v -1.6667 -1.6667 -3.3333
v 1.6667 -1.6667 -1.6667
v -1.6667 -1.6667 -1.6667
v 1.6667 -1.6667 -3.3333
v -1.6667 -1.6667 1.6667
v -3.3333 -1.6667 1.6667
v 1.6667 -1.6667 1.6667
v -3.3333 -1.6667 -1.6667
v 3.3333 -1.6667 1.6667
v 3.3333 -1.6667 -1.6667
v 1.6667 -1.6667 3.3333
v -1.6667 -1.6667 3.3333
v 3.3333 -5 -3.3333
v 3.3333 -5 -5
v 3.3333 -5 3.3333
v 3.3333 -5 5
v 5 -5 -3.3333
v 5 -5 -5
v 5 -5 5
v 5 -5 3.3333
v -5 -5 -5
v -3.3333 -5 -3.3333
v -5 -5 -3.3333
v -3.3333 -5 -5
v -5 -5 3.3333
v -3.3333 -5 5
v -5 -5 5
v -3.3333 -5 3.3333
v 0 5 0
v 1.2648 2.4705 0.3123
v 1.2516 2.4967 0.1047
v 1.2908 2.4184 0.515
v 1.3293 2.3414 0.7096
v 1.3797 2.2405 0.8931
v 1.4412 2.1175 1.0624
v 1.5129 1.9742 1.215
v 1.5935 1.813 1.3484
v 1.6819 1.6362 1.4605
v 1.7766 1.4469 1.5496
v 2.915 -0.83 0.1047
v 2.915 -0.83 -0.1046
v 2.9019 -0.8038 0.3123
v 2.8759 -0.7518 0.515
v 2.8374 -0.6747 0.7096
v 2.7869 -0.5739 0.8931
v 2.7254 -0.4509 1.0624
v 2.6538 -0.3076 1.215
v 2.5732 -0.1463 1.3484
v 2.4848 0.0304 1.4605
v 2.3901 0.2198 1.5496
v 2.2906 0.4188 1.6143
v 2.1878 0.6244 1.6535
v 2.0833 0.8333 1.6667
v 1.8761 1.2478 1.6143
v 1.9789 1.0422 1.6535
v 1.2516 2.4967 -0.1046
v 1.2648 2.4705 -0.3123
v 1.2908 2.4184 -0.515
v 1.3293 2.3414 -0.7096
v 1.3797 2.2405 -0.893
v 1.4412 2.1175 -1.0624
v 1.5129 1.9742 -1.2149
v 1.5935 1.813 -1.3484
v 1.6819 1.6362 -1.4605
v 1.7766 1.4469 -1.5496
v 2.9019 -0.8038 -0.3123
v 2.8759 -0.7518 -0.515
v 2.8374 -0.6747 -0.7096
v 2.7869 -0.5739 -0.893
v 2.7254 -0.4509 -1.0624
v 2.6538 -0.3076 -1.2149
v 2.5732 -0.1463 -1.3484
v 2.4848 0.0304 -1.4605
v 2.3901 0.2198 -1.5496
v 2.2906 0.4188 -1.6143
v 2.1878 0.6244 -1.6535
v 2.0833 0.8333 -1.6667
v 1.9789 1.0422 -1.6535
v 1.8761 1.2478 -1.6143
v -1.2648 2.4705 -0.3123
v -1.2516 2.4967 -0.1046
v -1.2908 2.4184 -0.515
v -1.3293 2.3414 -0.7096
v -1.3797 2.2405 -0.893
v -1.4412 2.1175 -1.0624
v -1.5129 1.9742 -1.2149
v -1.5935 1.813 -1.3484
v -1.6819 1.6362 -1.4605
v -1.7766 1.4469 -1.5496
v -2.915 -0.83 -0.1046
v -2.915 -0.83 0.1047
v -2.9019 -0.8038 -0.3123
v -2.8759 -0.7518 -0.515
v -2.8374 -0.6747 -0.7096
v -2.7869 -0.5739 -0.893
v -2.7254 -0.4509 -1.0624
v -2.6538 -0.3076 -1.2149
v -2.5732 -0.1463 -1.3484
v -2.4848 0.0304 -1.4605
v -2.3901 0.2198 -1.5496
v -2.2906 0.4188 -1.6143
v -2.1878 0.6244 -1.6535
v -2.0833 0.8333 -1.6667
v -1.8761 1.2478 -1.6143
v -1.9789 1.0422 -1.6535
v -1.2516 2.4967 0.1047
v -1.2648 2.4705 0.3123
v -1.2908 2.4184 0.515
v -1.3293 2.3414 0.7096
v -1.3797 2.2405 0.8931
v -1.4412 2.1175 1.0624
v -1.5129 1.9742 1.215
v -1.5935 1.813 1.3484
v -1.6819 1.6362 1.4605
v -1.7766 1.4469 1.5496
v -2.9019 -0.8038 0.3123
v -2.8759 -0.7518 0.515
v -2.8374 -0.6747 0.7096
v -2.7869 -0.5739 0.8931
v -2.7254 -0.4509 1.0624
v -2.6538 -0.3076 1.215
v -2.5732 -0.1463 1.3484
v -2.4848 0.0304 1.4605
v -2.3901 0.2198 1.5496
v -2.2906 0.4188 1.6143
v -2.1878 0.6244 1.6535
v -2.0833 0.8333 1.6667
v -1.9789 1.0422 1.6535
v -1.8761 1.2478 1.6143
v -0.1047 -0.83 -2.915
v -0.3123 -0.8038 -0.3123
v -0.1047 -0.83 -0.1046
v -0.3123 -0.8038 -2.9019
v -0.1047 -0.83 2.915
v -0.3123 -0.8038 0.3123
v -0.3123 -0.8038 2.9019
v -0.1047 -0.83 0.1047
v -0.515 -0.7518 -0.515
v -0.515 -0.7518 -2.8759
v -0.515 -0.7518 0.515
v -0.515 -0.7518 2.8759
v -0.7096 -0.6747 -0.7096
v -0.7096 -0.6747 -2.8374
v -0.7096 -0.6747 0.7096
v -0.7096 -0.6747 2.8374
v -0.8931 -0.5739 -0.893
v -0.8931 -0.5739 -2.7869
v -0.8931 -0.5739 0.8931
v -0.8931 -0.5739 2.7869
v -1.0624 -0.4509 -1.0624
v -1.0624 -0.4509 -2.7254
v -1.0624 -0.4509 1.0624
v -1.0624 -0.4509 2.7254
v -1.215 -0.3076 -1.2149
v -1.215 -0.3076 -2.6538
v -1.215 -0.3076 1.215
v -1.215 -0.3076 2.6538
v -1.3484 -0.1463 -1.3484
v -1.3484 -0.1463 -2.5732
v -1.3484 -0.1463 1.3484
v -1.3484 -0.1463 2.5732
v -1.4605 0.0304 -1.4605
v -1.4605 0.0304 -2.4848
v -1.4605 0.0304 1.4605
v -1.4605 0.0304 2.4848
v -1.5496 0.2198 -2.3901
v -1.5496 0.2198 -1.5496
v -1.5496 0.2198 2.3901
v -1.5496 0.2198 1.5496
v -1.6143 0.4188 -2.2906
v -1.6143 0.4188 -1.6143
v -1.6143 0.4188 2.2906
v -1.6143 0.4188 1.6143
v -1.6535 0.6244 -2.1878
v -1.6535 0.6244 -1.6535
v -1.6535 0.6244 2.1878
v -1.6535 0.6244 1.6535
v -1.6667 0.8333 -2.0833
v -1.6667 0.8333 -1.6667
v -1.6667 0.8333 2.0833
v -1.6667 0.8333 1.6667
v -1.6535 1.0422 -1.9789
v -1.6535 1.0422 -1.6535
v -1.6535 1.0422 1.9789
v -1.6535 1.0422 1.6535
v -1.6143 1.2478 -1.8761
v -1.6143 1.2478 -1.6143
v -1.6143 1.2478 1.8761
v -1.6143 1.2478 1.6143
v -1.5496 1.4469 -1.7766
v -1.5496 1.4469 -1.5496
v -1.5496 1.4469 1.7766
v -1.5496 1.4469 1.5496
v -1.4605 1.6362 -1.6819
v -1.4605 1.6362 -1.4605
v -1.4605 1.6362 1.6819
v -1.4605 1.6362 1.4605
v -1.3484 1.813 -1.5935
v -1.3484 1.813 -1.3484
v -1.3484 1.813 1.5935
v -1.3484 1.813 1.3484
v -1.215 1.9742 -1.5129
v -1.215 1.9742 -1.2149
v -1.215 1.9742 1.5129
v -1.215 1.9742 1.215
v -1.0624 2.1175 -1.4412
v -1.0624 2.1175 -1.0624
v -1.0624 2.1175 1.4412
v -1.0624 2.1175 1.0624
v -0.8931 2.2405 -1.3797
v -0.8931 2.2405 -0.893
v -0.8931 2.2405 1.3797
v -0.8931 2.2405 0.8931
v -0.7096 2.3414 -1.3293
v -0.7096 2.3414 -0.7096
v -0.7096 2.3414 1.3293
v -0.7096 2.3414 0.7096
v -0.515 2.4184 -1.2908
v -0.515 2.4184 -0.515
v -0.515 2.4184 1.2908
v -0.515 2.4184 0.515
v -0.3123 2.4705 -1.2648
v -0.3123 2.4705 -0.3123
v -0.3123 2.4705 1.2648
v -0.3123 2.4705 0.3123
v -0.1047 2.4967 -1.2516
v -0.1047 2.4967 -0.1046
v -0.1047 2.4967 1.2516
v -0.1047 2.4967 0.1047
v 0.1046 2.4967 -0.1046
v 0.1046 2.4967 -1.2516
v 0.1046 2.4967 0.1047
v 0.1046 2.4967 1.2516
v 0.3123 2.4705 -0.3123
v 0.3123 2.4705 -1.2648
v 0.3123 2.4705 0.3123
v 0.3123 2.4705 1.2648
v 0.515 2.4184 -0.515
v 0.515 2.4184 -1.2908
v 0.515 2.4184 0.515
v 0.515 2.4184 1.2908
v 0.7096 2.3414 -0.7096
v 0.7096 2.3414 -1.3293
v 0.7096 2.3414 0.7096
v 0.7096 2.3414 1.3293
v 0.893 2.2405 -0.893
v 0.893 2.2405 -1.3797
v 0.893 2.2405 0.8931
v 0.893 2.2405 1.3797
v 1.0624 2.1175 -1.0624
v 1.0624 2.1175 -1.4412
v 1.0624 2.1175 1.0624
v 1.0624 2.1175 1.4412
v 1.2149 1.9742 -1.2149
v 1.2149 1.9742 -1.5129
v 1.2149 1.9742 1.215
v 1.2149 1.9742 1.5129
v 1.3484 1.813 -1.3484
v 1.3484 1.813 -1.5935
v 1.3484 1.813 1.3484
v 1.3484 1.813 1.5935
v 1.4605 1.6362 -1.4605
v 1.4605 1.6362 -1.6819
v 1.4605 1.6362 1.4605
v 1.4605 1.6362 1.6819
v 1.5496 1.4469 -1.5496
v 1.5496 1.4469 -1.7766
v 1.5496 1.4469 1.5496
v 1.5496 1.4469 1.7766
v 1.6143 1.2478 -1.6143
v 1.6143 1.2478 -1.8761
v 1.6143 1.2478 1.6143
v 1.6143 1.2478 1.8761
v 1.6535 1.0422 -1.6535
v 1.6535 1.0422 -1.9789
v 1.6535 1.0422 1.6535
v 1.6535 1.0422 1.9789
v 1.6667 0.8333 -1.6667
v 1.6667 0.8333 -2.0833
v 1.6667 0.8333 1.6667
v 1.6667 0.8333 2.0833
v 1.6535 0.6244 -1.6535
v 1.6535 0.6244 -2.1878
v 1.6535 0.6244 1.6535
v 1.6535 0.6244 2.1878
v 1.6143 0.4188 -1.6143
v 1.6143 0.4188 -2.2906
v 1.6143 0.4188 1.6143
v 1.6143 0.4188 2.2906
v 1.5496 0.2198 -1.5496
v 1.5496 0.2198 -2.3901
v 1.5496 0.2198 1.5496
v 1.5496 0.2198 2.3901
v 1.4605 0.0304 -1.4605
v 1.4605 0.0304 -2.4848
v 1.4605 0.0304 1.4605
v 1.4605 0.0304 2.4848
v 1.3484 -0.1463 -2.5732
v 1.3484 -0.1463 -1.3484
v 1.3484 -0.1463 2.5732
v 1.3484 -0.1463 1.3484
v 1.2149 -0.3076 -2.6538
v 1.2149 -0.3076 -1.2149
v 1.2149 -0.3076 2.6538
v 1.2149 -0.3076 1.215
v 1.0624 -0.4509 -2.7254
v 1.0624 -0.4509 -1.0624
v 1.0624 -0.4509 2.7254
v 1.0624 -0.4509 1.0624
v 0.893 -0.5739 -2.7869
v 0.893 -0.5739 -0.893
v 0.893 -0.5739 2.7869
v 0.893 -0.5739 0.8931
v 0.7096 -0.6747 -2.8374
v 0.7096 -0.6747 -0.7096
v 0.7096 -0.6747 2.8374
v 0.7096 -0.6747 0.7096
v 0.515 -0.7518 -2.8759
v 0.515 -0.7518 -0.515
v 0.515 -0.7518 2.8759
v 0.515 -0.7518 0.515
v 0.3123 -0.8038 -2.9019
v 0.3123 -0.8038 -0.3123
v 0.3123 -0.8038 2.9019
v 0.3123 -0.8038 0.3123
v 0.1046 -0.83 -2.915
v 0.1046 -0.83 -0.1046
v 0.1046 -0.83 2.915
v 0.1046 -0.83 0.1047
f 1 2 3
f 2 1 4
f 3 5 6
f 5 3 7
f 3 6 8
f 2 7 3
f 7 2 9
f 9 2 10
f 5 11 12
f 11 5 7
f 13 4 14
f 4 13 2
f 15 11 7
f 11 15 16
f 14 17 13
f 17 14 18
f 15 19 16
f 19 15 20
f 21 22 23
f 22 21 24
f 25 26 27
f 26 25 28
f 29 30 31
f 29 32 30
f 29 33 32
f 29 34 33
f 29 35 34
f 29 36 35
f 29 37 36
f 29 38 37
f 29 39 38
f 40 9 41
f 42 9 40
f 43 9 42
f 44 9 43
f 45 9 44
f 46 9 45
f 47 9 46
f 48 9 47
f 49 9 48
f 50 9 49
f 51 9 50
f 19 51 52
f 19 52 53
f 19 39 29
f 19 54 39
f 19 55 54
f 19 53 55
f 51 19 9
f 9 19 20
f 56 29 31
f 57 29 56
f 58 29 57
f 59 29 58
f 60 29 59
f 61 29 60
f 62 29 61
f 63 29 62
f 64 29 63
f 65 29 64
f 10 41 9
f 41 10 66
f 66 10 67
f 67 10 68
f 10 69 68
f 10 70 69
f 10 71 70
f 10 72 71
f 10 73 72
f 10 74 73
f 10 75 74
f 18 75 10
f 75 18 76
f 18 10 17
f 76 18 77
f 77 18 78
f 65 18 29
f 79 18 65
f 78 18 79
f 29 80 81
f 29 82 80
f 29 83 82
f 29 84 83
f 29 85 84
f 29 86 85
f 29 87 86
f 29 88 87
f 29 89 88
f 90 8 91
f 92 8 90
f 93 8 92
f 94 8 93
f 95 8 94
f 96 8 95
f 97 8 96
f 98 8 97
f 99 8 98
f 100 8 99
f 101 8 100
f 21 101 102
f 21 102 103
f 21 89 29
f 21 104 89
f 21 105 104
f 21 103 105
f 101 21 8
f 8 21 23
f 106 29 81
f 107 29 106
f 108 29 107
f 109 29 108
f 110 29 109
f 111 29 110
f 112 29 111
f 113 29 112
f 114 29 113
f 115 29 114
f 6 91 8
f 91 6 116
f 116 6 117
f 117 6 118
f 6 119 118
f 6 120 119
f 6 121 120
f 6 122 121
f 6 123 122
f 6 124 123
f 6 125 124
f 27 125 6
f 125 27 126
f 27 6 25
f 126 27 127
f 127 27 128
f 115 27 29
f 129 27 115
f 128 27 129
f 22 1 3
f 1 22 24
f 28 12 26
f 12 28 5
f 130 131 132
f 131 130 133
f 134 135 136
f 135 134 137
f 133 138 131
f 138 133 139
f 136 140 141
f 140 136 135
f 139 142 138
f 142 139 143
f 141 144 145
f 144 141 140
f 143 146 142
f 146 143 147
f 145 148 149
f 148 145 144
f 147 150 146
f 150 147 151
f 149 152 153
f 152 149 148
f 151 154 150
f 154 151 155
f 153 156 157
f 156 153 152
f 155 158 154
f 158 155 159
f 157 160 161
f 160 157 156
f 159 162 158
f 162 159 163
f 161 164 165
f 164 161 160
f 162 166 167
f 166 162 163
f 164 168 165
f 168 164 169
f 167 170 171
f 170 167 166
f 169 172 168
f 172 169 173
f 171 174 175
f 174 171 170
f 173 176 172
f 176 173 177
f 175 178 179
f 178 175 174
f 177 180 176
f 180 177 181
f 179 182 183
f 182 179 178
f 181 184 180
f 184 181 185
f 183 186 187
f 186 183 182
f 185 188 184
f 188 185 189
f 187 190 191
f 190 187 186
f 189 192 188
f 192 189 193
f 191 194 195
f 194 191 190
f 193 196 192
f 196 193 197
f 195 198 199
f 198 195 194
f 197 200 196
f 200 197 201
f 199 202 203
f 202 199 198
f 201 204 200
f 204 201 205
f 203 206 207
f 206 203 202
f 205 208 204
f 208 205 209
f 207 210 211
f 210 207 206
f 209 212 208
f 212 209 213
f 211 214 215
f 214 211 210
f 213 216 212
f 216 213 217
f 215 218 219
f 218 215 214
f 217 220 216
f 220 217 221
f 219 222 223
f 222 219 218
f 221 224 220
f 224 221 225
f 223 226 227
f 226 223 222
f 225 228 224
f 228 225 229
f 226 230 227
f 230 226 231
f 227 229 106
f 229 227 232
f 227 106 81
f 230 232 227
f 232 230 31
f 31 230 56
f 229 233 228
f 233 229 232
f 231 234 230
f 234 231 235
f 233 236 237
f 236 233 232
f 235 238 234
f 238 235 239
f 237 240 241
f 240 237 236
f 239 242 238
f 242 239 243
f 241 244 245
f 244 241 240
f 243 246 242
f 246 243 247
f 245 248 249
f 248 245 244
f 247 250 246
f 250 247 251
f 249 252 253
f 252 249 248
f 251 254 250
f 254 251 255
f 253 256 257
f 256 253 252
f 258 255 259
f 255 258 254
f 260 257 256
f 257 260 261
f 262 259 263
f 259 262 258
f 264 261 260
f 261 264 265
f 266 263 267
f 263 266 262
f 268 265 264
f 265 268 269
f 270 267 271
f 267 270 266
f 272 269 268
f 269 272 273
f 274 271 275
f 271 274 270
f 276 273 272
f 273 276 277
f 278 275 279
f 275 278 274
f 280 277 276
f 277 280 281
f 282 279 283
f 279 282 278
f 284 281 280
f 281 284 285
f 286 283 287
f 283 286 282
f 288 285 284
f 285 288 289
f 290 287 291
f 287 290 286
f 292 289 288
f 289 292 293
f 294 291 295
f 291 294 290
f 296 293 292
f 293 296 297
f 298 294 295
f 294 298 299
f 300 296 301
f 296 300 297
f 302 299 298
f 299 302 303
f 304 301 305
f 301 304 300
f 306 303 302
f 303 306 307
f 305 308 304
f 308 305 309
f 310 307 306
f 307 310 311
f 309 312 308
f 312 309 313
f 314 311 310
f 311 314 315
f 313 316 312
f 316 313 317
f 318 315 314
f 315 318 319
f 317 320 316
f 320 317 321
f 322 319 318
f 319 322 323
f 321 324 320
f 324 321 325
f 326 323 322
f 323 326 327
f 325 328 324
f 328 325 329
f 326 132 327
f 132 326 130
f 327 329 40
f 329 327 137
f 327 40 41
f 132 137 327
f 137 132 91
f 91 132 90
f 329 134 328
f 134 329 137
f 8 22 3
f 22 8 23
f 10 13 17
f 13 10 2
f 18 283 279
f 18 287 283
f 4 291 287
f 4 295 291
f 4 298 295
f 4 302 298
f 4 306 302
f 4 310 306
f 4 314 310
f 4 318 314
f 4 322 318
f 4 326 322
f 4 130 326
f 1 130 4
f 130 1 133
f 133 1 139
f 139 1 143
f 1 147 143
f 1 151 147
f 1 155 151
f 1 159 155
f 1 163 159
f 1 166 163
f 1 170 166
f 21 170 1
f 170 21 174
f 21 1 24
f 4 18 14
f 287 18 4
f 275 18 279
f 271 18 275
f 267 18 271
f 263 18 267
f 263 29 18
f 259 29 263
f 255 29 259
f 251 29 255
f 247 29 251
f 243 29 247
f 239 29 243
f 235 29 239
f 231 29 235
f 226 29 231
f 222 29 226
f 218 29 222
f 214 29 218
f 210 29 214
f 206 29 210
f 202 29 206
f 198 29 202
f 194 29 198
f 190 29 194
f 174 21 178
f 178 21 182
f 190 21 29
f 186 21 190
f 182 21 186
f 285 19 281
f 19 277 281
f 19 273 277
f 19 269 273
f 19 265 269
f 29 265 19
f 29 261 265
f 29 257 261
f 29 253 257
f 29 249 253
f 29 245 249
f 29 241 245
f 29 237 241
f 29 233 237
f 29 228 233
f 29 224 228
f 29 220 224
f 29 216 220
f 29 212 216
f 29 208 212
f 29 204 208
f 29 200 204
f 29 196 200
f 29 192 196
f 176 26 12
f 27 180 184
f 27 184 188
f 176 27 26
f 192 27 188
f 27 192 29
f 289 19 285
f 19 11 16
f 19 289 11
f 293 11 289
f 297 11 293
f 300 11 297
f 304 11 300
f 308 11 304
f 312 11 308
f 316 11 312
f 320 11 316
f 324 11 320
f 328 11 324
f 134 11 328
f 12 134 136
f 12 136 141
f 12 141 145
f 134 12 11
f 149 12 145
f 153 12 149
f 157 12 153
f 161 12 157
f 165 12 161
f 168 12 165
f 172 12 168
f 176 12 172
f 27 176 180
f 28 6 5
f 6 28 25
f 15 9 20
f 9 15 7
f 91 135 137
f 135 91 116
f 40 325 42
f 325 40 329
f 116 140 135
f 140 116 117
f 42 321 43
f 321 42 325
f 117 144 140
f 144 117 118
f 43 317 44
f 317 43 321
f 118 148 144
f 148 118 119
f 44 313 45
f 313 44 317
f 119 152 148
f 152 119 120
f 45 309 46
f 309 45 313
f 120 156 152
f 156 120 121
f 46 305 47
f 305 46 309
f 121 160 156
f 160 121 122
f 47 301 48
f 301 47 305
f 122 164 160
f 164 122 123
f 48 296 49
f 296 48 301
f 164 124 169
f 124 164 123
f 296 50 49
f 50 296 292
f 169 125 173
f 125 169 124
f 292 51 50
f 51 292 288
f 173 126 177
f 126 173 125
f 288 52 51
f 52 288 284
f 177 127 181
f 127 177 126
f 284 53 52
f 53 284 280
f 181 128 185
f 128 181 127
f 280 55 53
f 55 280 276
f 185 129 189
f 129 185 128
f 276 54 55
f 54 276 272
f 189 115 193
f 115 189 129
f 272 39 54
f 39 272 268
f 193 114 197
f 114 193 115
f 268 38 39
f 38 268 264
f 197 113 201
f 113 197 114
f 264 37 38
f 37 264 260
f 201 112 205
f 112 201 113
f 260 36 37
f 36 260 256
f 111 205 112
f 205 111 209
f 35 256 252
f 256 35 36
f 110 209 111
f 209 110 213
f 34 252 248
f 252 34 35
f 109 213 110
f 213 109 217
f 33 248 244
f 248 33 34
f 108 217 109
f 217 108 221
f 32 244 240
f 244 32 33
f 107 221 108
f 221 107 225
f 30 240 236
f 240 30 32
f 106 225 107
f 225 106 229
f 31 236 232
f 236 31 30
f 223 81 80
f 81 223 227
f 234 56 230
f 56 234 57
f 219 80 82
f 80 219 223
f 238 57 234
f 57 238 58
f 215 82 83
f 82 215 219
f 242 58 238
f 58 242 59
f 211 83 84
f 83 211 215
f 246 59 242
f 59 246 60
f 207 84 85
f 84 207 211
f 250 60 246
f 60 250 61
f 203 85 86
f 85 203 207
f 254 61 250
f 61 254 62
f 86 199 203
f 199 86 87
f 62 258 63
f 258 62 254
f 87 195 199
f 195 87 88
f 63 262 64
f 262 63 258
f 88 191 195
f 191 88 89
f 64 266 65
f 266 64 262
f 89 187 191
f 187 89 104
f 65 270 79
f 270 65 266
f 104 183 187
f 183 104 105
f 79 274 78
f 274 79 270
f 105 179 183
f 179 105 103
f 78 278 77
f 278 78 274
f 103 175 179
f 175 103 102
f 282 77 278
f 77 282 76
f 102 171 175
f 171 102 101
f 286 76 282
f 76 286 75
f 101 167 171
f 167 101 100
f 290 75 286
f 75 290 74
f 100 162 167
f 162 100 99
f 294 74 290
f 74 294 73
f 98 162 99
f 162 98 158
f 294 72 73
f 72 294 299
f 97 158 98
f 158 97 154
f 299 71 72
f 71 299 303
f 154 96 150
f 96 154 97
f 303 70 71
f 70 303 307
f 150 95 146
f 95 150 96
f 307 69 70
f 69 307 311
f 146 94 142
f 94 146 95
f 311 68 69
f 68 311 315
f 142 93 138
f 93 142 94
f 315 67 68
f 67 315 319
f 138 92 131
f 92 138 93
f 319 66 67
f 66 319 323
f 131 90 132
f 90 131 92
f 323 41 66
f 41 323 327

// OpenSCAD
// Generated by SolidPython 1.1.3 on 2025-02-25 01:33:31
$fn=50;


intersection() {
	translate(v = [-5.0000000000, -5.0000000000, -5.0000000000]) {
		linear_extrude(height = 10) {
			difference() {
				polygon(points = [[0, 0], [5.0000000000, 10], [10, 0], [8.3333333333, 0], [6.6666666667, 3.3333333333], [3.3333333333, 3.3333333333], [1.6666666667, 0]]);
				translate(v = [5.0000000000, 5.8333333333]) {
					circle(r = 1.6666666667);
				}
			}
		}
	}
	rotate(a = 90, v = [0, 1, 0]) {
		translate(v = [-5.0000000000, -5.0000000000, -5.0000000000]) {
			linear_extrude(height = 10) {
				difference() {
					polygon(points = [[0, 0], [5.0000000000, 10], [10, 0], [8.3333333333, 0], [6.6666666667, 3.3333333333], [3.3333333333, 3.3333333333], [1.6666666667, 0]]);
					translate(v = [5.0000000000, 5.8333333333]) {
						circle(r = 1.6666666667);
					}
				}
			}
		}
	}
}
/***********************************************
*********      SolidPython code:      **********
************************************************
 
from solid import *
from solid.utils import *

import math
import matplotlib.pyplot as plt
import subprocess
import os
import grok_letters as grok
import grok_think as grok_think
import letters as let
import o1_letters as o1

def arc_points(radius, start_angle, end_angle, center=[0,0], num_points=50):
    angles = [start_angle + i * (end_angle - start_angle) / (num_points - 1)
              for i in range(num_points)]
    points = [
        (center[0] + radius * math.cos(math.radians(angle)),
         center[1] + radius * math.sin(math.radians(angle)))
        for angle in angles
    ]
    return points

class Hole:
    def __init__(self, radius, x, y):
        """
        Hole defined by:
        :param x: x dimension for center point of the circle as a ratio of letter height
        :param y: y dimension for center point of the circle as a ratio of letter height
        :param radius: radius of circle as a ratio of letter height
        """
        self.x = x
        self.y = y
        self.radius = radius

class Letter2D:
    def __init__(self, letter, scale):
        self.letter = letter
        self.scale = scale
        self.shape = self.generate()
    
    def get_letter_points(self):
        points = getattr(let, self.letter)
        # points = getattr(o1, self.letter)
        # points = getattr(grok, self.letter)
        scaled_points = [(point[0] * self.scale, point[1] * self.scale) for point in points]
        return scaled_points

    def get_letter_holes(self):
        holes = []
        if self.letter == "A": 
            holes = [Hole(1/6, 1/2, 7/12)]
        if self.letter == "B":
            holes = [Hole(1/6, 1/2, 3/4), Hole(1/6, 1/2, 1/4)]
        if self.letter == "D":
            holes = [Hole(1/3, 1/2, 1/2)]

        scaled_holes = [Hole(hole.radius*self.scale, hole.x*self.scale, hole.y*self.scale) for hole in holes]
        return scaled_holes

    
    def generate(self):
        shape = polygon(points=self.get_letter_points())
        holes = self.get_letter_holes()

        if holes:
            for hole in holes:
                circle_hole = circle(r=hole.radius)
                positioned_hole = translate([hole.x, hole.y])(circle_hole)
                shape = difference()(shape, positioned_hole)
        return shape
    

    def render(self):
        scad_render_to_file(self.shape, f"output/{self.name}.scad", file_header='$fn=50;')
        subprocess.run(["C:\\Program Files\\OpenSCAD\\openscad.exe", "-o", f"output\\{self.name}.stl", f"output\\{self.name}.scad"])


class TwoLetter3D:
    def __init__(self, height, letterA, letterB=None):
        self.height = height
        self.letterA = letterA
        self.letterB = letterB
    

    def generate_3d_letter(self, letter):
        letter = letter.upper()
        # TODO: add catch here for is letter is not a letter
        shape = Letter2D(letter, self.height).generate()
        shape_3d = linear_extrude(height=self.height)(shape)
        centered_shape_3d = translate([-self.height/2, -self.height/2, -self.height/2])(shape_3d)
        return centered_shape_3d


    def render(self):
        letterA3D = self.generate_3d_letter(self.letterA)

        if self.letterB:
            letterB3D = self.generate_3d_letter(self.letterB)
            letterB3D = rotate(a=90, v=[0,1,0])(letterB3D)

            combined = intersection()(letterA3D, letterB3D)
            file_name = self.letterA + self.letterB
            scad_render_to_file(combined, f"output/{file_name}.scad", file_header='$fn=50;')
            subprocess.run(["C:\\Program Files\\OpenSCAD\\openscad.exe", "-o", f"output\\{file_name}.stl", f"output\\{file_name}.scad"])
            return
        else:
            # file_name = "o1_" + self.letterA
            # file_name = "grok_think_" + self.letterA
            file_name = self.letterA
            # file_name = "grok_" + self.letterA
            scad_render_to_file(letterA3D, f"output/{file_name}.scad", file_header='$fn=50;')
            subprocess.run(["C:\\Program Files\\OpenSCAD\\openscad.exe", "-o", f"output\\{file_name}.stl", f"output\\{file_name}.scad"])
            # subprocess.run(["openscad", "-o", f"output\\{file_name}.png", f"output\\{file_name}.scad", "--imgsize=800,600", "--autocenter"])
            subprocess.run(["openscad", "-o", f"output\\{file_name}.png", f"output\\{file_name}.scad", "--imgsize=800,600", "--camera=0,0,30,0,0,0", "--viewall", "--autocenter", "--projection=o"])
            os.remove(f"output/{file_name}.scad")
            return
                


if __name__ == "__main__":
    os.makedirs("output", exist_ok=True)

    # # Generate a letter
    # letter = input()
    # shape = TwoLetter3D(10, letter)
    # shape.render()
    
    letters = [chr(x) for x in range(ord('A'), ord('j') + 1)]

    # Generate all combos
    for letter in letters:
        for other_letter in letters:
            shape = TwoLetter3D(10, letter, other_letter)
            shape.render()

    # # Generate all letters
    # for letter in letters:
    #     shape = TwoLetter3D(10, letter)
    #     shape.render()
 
 
************************************************/
